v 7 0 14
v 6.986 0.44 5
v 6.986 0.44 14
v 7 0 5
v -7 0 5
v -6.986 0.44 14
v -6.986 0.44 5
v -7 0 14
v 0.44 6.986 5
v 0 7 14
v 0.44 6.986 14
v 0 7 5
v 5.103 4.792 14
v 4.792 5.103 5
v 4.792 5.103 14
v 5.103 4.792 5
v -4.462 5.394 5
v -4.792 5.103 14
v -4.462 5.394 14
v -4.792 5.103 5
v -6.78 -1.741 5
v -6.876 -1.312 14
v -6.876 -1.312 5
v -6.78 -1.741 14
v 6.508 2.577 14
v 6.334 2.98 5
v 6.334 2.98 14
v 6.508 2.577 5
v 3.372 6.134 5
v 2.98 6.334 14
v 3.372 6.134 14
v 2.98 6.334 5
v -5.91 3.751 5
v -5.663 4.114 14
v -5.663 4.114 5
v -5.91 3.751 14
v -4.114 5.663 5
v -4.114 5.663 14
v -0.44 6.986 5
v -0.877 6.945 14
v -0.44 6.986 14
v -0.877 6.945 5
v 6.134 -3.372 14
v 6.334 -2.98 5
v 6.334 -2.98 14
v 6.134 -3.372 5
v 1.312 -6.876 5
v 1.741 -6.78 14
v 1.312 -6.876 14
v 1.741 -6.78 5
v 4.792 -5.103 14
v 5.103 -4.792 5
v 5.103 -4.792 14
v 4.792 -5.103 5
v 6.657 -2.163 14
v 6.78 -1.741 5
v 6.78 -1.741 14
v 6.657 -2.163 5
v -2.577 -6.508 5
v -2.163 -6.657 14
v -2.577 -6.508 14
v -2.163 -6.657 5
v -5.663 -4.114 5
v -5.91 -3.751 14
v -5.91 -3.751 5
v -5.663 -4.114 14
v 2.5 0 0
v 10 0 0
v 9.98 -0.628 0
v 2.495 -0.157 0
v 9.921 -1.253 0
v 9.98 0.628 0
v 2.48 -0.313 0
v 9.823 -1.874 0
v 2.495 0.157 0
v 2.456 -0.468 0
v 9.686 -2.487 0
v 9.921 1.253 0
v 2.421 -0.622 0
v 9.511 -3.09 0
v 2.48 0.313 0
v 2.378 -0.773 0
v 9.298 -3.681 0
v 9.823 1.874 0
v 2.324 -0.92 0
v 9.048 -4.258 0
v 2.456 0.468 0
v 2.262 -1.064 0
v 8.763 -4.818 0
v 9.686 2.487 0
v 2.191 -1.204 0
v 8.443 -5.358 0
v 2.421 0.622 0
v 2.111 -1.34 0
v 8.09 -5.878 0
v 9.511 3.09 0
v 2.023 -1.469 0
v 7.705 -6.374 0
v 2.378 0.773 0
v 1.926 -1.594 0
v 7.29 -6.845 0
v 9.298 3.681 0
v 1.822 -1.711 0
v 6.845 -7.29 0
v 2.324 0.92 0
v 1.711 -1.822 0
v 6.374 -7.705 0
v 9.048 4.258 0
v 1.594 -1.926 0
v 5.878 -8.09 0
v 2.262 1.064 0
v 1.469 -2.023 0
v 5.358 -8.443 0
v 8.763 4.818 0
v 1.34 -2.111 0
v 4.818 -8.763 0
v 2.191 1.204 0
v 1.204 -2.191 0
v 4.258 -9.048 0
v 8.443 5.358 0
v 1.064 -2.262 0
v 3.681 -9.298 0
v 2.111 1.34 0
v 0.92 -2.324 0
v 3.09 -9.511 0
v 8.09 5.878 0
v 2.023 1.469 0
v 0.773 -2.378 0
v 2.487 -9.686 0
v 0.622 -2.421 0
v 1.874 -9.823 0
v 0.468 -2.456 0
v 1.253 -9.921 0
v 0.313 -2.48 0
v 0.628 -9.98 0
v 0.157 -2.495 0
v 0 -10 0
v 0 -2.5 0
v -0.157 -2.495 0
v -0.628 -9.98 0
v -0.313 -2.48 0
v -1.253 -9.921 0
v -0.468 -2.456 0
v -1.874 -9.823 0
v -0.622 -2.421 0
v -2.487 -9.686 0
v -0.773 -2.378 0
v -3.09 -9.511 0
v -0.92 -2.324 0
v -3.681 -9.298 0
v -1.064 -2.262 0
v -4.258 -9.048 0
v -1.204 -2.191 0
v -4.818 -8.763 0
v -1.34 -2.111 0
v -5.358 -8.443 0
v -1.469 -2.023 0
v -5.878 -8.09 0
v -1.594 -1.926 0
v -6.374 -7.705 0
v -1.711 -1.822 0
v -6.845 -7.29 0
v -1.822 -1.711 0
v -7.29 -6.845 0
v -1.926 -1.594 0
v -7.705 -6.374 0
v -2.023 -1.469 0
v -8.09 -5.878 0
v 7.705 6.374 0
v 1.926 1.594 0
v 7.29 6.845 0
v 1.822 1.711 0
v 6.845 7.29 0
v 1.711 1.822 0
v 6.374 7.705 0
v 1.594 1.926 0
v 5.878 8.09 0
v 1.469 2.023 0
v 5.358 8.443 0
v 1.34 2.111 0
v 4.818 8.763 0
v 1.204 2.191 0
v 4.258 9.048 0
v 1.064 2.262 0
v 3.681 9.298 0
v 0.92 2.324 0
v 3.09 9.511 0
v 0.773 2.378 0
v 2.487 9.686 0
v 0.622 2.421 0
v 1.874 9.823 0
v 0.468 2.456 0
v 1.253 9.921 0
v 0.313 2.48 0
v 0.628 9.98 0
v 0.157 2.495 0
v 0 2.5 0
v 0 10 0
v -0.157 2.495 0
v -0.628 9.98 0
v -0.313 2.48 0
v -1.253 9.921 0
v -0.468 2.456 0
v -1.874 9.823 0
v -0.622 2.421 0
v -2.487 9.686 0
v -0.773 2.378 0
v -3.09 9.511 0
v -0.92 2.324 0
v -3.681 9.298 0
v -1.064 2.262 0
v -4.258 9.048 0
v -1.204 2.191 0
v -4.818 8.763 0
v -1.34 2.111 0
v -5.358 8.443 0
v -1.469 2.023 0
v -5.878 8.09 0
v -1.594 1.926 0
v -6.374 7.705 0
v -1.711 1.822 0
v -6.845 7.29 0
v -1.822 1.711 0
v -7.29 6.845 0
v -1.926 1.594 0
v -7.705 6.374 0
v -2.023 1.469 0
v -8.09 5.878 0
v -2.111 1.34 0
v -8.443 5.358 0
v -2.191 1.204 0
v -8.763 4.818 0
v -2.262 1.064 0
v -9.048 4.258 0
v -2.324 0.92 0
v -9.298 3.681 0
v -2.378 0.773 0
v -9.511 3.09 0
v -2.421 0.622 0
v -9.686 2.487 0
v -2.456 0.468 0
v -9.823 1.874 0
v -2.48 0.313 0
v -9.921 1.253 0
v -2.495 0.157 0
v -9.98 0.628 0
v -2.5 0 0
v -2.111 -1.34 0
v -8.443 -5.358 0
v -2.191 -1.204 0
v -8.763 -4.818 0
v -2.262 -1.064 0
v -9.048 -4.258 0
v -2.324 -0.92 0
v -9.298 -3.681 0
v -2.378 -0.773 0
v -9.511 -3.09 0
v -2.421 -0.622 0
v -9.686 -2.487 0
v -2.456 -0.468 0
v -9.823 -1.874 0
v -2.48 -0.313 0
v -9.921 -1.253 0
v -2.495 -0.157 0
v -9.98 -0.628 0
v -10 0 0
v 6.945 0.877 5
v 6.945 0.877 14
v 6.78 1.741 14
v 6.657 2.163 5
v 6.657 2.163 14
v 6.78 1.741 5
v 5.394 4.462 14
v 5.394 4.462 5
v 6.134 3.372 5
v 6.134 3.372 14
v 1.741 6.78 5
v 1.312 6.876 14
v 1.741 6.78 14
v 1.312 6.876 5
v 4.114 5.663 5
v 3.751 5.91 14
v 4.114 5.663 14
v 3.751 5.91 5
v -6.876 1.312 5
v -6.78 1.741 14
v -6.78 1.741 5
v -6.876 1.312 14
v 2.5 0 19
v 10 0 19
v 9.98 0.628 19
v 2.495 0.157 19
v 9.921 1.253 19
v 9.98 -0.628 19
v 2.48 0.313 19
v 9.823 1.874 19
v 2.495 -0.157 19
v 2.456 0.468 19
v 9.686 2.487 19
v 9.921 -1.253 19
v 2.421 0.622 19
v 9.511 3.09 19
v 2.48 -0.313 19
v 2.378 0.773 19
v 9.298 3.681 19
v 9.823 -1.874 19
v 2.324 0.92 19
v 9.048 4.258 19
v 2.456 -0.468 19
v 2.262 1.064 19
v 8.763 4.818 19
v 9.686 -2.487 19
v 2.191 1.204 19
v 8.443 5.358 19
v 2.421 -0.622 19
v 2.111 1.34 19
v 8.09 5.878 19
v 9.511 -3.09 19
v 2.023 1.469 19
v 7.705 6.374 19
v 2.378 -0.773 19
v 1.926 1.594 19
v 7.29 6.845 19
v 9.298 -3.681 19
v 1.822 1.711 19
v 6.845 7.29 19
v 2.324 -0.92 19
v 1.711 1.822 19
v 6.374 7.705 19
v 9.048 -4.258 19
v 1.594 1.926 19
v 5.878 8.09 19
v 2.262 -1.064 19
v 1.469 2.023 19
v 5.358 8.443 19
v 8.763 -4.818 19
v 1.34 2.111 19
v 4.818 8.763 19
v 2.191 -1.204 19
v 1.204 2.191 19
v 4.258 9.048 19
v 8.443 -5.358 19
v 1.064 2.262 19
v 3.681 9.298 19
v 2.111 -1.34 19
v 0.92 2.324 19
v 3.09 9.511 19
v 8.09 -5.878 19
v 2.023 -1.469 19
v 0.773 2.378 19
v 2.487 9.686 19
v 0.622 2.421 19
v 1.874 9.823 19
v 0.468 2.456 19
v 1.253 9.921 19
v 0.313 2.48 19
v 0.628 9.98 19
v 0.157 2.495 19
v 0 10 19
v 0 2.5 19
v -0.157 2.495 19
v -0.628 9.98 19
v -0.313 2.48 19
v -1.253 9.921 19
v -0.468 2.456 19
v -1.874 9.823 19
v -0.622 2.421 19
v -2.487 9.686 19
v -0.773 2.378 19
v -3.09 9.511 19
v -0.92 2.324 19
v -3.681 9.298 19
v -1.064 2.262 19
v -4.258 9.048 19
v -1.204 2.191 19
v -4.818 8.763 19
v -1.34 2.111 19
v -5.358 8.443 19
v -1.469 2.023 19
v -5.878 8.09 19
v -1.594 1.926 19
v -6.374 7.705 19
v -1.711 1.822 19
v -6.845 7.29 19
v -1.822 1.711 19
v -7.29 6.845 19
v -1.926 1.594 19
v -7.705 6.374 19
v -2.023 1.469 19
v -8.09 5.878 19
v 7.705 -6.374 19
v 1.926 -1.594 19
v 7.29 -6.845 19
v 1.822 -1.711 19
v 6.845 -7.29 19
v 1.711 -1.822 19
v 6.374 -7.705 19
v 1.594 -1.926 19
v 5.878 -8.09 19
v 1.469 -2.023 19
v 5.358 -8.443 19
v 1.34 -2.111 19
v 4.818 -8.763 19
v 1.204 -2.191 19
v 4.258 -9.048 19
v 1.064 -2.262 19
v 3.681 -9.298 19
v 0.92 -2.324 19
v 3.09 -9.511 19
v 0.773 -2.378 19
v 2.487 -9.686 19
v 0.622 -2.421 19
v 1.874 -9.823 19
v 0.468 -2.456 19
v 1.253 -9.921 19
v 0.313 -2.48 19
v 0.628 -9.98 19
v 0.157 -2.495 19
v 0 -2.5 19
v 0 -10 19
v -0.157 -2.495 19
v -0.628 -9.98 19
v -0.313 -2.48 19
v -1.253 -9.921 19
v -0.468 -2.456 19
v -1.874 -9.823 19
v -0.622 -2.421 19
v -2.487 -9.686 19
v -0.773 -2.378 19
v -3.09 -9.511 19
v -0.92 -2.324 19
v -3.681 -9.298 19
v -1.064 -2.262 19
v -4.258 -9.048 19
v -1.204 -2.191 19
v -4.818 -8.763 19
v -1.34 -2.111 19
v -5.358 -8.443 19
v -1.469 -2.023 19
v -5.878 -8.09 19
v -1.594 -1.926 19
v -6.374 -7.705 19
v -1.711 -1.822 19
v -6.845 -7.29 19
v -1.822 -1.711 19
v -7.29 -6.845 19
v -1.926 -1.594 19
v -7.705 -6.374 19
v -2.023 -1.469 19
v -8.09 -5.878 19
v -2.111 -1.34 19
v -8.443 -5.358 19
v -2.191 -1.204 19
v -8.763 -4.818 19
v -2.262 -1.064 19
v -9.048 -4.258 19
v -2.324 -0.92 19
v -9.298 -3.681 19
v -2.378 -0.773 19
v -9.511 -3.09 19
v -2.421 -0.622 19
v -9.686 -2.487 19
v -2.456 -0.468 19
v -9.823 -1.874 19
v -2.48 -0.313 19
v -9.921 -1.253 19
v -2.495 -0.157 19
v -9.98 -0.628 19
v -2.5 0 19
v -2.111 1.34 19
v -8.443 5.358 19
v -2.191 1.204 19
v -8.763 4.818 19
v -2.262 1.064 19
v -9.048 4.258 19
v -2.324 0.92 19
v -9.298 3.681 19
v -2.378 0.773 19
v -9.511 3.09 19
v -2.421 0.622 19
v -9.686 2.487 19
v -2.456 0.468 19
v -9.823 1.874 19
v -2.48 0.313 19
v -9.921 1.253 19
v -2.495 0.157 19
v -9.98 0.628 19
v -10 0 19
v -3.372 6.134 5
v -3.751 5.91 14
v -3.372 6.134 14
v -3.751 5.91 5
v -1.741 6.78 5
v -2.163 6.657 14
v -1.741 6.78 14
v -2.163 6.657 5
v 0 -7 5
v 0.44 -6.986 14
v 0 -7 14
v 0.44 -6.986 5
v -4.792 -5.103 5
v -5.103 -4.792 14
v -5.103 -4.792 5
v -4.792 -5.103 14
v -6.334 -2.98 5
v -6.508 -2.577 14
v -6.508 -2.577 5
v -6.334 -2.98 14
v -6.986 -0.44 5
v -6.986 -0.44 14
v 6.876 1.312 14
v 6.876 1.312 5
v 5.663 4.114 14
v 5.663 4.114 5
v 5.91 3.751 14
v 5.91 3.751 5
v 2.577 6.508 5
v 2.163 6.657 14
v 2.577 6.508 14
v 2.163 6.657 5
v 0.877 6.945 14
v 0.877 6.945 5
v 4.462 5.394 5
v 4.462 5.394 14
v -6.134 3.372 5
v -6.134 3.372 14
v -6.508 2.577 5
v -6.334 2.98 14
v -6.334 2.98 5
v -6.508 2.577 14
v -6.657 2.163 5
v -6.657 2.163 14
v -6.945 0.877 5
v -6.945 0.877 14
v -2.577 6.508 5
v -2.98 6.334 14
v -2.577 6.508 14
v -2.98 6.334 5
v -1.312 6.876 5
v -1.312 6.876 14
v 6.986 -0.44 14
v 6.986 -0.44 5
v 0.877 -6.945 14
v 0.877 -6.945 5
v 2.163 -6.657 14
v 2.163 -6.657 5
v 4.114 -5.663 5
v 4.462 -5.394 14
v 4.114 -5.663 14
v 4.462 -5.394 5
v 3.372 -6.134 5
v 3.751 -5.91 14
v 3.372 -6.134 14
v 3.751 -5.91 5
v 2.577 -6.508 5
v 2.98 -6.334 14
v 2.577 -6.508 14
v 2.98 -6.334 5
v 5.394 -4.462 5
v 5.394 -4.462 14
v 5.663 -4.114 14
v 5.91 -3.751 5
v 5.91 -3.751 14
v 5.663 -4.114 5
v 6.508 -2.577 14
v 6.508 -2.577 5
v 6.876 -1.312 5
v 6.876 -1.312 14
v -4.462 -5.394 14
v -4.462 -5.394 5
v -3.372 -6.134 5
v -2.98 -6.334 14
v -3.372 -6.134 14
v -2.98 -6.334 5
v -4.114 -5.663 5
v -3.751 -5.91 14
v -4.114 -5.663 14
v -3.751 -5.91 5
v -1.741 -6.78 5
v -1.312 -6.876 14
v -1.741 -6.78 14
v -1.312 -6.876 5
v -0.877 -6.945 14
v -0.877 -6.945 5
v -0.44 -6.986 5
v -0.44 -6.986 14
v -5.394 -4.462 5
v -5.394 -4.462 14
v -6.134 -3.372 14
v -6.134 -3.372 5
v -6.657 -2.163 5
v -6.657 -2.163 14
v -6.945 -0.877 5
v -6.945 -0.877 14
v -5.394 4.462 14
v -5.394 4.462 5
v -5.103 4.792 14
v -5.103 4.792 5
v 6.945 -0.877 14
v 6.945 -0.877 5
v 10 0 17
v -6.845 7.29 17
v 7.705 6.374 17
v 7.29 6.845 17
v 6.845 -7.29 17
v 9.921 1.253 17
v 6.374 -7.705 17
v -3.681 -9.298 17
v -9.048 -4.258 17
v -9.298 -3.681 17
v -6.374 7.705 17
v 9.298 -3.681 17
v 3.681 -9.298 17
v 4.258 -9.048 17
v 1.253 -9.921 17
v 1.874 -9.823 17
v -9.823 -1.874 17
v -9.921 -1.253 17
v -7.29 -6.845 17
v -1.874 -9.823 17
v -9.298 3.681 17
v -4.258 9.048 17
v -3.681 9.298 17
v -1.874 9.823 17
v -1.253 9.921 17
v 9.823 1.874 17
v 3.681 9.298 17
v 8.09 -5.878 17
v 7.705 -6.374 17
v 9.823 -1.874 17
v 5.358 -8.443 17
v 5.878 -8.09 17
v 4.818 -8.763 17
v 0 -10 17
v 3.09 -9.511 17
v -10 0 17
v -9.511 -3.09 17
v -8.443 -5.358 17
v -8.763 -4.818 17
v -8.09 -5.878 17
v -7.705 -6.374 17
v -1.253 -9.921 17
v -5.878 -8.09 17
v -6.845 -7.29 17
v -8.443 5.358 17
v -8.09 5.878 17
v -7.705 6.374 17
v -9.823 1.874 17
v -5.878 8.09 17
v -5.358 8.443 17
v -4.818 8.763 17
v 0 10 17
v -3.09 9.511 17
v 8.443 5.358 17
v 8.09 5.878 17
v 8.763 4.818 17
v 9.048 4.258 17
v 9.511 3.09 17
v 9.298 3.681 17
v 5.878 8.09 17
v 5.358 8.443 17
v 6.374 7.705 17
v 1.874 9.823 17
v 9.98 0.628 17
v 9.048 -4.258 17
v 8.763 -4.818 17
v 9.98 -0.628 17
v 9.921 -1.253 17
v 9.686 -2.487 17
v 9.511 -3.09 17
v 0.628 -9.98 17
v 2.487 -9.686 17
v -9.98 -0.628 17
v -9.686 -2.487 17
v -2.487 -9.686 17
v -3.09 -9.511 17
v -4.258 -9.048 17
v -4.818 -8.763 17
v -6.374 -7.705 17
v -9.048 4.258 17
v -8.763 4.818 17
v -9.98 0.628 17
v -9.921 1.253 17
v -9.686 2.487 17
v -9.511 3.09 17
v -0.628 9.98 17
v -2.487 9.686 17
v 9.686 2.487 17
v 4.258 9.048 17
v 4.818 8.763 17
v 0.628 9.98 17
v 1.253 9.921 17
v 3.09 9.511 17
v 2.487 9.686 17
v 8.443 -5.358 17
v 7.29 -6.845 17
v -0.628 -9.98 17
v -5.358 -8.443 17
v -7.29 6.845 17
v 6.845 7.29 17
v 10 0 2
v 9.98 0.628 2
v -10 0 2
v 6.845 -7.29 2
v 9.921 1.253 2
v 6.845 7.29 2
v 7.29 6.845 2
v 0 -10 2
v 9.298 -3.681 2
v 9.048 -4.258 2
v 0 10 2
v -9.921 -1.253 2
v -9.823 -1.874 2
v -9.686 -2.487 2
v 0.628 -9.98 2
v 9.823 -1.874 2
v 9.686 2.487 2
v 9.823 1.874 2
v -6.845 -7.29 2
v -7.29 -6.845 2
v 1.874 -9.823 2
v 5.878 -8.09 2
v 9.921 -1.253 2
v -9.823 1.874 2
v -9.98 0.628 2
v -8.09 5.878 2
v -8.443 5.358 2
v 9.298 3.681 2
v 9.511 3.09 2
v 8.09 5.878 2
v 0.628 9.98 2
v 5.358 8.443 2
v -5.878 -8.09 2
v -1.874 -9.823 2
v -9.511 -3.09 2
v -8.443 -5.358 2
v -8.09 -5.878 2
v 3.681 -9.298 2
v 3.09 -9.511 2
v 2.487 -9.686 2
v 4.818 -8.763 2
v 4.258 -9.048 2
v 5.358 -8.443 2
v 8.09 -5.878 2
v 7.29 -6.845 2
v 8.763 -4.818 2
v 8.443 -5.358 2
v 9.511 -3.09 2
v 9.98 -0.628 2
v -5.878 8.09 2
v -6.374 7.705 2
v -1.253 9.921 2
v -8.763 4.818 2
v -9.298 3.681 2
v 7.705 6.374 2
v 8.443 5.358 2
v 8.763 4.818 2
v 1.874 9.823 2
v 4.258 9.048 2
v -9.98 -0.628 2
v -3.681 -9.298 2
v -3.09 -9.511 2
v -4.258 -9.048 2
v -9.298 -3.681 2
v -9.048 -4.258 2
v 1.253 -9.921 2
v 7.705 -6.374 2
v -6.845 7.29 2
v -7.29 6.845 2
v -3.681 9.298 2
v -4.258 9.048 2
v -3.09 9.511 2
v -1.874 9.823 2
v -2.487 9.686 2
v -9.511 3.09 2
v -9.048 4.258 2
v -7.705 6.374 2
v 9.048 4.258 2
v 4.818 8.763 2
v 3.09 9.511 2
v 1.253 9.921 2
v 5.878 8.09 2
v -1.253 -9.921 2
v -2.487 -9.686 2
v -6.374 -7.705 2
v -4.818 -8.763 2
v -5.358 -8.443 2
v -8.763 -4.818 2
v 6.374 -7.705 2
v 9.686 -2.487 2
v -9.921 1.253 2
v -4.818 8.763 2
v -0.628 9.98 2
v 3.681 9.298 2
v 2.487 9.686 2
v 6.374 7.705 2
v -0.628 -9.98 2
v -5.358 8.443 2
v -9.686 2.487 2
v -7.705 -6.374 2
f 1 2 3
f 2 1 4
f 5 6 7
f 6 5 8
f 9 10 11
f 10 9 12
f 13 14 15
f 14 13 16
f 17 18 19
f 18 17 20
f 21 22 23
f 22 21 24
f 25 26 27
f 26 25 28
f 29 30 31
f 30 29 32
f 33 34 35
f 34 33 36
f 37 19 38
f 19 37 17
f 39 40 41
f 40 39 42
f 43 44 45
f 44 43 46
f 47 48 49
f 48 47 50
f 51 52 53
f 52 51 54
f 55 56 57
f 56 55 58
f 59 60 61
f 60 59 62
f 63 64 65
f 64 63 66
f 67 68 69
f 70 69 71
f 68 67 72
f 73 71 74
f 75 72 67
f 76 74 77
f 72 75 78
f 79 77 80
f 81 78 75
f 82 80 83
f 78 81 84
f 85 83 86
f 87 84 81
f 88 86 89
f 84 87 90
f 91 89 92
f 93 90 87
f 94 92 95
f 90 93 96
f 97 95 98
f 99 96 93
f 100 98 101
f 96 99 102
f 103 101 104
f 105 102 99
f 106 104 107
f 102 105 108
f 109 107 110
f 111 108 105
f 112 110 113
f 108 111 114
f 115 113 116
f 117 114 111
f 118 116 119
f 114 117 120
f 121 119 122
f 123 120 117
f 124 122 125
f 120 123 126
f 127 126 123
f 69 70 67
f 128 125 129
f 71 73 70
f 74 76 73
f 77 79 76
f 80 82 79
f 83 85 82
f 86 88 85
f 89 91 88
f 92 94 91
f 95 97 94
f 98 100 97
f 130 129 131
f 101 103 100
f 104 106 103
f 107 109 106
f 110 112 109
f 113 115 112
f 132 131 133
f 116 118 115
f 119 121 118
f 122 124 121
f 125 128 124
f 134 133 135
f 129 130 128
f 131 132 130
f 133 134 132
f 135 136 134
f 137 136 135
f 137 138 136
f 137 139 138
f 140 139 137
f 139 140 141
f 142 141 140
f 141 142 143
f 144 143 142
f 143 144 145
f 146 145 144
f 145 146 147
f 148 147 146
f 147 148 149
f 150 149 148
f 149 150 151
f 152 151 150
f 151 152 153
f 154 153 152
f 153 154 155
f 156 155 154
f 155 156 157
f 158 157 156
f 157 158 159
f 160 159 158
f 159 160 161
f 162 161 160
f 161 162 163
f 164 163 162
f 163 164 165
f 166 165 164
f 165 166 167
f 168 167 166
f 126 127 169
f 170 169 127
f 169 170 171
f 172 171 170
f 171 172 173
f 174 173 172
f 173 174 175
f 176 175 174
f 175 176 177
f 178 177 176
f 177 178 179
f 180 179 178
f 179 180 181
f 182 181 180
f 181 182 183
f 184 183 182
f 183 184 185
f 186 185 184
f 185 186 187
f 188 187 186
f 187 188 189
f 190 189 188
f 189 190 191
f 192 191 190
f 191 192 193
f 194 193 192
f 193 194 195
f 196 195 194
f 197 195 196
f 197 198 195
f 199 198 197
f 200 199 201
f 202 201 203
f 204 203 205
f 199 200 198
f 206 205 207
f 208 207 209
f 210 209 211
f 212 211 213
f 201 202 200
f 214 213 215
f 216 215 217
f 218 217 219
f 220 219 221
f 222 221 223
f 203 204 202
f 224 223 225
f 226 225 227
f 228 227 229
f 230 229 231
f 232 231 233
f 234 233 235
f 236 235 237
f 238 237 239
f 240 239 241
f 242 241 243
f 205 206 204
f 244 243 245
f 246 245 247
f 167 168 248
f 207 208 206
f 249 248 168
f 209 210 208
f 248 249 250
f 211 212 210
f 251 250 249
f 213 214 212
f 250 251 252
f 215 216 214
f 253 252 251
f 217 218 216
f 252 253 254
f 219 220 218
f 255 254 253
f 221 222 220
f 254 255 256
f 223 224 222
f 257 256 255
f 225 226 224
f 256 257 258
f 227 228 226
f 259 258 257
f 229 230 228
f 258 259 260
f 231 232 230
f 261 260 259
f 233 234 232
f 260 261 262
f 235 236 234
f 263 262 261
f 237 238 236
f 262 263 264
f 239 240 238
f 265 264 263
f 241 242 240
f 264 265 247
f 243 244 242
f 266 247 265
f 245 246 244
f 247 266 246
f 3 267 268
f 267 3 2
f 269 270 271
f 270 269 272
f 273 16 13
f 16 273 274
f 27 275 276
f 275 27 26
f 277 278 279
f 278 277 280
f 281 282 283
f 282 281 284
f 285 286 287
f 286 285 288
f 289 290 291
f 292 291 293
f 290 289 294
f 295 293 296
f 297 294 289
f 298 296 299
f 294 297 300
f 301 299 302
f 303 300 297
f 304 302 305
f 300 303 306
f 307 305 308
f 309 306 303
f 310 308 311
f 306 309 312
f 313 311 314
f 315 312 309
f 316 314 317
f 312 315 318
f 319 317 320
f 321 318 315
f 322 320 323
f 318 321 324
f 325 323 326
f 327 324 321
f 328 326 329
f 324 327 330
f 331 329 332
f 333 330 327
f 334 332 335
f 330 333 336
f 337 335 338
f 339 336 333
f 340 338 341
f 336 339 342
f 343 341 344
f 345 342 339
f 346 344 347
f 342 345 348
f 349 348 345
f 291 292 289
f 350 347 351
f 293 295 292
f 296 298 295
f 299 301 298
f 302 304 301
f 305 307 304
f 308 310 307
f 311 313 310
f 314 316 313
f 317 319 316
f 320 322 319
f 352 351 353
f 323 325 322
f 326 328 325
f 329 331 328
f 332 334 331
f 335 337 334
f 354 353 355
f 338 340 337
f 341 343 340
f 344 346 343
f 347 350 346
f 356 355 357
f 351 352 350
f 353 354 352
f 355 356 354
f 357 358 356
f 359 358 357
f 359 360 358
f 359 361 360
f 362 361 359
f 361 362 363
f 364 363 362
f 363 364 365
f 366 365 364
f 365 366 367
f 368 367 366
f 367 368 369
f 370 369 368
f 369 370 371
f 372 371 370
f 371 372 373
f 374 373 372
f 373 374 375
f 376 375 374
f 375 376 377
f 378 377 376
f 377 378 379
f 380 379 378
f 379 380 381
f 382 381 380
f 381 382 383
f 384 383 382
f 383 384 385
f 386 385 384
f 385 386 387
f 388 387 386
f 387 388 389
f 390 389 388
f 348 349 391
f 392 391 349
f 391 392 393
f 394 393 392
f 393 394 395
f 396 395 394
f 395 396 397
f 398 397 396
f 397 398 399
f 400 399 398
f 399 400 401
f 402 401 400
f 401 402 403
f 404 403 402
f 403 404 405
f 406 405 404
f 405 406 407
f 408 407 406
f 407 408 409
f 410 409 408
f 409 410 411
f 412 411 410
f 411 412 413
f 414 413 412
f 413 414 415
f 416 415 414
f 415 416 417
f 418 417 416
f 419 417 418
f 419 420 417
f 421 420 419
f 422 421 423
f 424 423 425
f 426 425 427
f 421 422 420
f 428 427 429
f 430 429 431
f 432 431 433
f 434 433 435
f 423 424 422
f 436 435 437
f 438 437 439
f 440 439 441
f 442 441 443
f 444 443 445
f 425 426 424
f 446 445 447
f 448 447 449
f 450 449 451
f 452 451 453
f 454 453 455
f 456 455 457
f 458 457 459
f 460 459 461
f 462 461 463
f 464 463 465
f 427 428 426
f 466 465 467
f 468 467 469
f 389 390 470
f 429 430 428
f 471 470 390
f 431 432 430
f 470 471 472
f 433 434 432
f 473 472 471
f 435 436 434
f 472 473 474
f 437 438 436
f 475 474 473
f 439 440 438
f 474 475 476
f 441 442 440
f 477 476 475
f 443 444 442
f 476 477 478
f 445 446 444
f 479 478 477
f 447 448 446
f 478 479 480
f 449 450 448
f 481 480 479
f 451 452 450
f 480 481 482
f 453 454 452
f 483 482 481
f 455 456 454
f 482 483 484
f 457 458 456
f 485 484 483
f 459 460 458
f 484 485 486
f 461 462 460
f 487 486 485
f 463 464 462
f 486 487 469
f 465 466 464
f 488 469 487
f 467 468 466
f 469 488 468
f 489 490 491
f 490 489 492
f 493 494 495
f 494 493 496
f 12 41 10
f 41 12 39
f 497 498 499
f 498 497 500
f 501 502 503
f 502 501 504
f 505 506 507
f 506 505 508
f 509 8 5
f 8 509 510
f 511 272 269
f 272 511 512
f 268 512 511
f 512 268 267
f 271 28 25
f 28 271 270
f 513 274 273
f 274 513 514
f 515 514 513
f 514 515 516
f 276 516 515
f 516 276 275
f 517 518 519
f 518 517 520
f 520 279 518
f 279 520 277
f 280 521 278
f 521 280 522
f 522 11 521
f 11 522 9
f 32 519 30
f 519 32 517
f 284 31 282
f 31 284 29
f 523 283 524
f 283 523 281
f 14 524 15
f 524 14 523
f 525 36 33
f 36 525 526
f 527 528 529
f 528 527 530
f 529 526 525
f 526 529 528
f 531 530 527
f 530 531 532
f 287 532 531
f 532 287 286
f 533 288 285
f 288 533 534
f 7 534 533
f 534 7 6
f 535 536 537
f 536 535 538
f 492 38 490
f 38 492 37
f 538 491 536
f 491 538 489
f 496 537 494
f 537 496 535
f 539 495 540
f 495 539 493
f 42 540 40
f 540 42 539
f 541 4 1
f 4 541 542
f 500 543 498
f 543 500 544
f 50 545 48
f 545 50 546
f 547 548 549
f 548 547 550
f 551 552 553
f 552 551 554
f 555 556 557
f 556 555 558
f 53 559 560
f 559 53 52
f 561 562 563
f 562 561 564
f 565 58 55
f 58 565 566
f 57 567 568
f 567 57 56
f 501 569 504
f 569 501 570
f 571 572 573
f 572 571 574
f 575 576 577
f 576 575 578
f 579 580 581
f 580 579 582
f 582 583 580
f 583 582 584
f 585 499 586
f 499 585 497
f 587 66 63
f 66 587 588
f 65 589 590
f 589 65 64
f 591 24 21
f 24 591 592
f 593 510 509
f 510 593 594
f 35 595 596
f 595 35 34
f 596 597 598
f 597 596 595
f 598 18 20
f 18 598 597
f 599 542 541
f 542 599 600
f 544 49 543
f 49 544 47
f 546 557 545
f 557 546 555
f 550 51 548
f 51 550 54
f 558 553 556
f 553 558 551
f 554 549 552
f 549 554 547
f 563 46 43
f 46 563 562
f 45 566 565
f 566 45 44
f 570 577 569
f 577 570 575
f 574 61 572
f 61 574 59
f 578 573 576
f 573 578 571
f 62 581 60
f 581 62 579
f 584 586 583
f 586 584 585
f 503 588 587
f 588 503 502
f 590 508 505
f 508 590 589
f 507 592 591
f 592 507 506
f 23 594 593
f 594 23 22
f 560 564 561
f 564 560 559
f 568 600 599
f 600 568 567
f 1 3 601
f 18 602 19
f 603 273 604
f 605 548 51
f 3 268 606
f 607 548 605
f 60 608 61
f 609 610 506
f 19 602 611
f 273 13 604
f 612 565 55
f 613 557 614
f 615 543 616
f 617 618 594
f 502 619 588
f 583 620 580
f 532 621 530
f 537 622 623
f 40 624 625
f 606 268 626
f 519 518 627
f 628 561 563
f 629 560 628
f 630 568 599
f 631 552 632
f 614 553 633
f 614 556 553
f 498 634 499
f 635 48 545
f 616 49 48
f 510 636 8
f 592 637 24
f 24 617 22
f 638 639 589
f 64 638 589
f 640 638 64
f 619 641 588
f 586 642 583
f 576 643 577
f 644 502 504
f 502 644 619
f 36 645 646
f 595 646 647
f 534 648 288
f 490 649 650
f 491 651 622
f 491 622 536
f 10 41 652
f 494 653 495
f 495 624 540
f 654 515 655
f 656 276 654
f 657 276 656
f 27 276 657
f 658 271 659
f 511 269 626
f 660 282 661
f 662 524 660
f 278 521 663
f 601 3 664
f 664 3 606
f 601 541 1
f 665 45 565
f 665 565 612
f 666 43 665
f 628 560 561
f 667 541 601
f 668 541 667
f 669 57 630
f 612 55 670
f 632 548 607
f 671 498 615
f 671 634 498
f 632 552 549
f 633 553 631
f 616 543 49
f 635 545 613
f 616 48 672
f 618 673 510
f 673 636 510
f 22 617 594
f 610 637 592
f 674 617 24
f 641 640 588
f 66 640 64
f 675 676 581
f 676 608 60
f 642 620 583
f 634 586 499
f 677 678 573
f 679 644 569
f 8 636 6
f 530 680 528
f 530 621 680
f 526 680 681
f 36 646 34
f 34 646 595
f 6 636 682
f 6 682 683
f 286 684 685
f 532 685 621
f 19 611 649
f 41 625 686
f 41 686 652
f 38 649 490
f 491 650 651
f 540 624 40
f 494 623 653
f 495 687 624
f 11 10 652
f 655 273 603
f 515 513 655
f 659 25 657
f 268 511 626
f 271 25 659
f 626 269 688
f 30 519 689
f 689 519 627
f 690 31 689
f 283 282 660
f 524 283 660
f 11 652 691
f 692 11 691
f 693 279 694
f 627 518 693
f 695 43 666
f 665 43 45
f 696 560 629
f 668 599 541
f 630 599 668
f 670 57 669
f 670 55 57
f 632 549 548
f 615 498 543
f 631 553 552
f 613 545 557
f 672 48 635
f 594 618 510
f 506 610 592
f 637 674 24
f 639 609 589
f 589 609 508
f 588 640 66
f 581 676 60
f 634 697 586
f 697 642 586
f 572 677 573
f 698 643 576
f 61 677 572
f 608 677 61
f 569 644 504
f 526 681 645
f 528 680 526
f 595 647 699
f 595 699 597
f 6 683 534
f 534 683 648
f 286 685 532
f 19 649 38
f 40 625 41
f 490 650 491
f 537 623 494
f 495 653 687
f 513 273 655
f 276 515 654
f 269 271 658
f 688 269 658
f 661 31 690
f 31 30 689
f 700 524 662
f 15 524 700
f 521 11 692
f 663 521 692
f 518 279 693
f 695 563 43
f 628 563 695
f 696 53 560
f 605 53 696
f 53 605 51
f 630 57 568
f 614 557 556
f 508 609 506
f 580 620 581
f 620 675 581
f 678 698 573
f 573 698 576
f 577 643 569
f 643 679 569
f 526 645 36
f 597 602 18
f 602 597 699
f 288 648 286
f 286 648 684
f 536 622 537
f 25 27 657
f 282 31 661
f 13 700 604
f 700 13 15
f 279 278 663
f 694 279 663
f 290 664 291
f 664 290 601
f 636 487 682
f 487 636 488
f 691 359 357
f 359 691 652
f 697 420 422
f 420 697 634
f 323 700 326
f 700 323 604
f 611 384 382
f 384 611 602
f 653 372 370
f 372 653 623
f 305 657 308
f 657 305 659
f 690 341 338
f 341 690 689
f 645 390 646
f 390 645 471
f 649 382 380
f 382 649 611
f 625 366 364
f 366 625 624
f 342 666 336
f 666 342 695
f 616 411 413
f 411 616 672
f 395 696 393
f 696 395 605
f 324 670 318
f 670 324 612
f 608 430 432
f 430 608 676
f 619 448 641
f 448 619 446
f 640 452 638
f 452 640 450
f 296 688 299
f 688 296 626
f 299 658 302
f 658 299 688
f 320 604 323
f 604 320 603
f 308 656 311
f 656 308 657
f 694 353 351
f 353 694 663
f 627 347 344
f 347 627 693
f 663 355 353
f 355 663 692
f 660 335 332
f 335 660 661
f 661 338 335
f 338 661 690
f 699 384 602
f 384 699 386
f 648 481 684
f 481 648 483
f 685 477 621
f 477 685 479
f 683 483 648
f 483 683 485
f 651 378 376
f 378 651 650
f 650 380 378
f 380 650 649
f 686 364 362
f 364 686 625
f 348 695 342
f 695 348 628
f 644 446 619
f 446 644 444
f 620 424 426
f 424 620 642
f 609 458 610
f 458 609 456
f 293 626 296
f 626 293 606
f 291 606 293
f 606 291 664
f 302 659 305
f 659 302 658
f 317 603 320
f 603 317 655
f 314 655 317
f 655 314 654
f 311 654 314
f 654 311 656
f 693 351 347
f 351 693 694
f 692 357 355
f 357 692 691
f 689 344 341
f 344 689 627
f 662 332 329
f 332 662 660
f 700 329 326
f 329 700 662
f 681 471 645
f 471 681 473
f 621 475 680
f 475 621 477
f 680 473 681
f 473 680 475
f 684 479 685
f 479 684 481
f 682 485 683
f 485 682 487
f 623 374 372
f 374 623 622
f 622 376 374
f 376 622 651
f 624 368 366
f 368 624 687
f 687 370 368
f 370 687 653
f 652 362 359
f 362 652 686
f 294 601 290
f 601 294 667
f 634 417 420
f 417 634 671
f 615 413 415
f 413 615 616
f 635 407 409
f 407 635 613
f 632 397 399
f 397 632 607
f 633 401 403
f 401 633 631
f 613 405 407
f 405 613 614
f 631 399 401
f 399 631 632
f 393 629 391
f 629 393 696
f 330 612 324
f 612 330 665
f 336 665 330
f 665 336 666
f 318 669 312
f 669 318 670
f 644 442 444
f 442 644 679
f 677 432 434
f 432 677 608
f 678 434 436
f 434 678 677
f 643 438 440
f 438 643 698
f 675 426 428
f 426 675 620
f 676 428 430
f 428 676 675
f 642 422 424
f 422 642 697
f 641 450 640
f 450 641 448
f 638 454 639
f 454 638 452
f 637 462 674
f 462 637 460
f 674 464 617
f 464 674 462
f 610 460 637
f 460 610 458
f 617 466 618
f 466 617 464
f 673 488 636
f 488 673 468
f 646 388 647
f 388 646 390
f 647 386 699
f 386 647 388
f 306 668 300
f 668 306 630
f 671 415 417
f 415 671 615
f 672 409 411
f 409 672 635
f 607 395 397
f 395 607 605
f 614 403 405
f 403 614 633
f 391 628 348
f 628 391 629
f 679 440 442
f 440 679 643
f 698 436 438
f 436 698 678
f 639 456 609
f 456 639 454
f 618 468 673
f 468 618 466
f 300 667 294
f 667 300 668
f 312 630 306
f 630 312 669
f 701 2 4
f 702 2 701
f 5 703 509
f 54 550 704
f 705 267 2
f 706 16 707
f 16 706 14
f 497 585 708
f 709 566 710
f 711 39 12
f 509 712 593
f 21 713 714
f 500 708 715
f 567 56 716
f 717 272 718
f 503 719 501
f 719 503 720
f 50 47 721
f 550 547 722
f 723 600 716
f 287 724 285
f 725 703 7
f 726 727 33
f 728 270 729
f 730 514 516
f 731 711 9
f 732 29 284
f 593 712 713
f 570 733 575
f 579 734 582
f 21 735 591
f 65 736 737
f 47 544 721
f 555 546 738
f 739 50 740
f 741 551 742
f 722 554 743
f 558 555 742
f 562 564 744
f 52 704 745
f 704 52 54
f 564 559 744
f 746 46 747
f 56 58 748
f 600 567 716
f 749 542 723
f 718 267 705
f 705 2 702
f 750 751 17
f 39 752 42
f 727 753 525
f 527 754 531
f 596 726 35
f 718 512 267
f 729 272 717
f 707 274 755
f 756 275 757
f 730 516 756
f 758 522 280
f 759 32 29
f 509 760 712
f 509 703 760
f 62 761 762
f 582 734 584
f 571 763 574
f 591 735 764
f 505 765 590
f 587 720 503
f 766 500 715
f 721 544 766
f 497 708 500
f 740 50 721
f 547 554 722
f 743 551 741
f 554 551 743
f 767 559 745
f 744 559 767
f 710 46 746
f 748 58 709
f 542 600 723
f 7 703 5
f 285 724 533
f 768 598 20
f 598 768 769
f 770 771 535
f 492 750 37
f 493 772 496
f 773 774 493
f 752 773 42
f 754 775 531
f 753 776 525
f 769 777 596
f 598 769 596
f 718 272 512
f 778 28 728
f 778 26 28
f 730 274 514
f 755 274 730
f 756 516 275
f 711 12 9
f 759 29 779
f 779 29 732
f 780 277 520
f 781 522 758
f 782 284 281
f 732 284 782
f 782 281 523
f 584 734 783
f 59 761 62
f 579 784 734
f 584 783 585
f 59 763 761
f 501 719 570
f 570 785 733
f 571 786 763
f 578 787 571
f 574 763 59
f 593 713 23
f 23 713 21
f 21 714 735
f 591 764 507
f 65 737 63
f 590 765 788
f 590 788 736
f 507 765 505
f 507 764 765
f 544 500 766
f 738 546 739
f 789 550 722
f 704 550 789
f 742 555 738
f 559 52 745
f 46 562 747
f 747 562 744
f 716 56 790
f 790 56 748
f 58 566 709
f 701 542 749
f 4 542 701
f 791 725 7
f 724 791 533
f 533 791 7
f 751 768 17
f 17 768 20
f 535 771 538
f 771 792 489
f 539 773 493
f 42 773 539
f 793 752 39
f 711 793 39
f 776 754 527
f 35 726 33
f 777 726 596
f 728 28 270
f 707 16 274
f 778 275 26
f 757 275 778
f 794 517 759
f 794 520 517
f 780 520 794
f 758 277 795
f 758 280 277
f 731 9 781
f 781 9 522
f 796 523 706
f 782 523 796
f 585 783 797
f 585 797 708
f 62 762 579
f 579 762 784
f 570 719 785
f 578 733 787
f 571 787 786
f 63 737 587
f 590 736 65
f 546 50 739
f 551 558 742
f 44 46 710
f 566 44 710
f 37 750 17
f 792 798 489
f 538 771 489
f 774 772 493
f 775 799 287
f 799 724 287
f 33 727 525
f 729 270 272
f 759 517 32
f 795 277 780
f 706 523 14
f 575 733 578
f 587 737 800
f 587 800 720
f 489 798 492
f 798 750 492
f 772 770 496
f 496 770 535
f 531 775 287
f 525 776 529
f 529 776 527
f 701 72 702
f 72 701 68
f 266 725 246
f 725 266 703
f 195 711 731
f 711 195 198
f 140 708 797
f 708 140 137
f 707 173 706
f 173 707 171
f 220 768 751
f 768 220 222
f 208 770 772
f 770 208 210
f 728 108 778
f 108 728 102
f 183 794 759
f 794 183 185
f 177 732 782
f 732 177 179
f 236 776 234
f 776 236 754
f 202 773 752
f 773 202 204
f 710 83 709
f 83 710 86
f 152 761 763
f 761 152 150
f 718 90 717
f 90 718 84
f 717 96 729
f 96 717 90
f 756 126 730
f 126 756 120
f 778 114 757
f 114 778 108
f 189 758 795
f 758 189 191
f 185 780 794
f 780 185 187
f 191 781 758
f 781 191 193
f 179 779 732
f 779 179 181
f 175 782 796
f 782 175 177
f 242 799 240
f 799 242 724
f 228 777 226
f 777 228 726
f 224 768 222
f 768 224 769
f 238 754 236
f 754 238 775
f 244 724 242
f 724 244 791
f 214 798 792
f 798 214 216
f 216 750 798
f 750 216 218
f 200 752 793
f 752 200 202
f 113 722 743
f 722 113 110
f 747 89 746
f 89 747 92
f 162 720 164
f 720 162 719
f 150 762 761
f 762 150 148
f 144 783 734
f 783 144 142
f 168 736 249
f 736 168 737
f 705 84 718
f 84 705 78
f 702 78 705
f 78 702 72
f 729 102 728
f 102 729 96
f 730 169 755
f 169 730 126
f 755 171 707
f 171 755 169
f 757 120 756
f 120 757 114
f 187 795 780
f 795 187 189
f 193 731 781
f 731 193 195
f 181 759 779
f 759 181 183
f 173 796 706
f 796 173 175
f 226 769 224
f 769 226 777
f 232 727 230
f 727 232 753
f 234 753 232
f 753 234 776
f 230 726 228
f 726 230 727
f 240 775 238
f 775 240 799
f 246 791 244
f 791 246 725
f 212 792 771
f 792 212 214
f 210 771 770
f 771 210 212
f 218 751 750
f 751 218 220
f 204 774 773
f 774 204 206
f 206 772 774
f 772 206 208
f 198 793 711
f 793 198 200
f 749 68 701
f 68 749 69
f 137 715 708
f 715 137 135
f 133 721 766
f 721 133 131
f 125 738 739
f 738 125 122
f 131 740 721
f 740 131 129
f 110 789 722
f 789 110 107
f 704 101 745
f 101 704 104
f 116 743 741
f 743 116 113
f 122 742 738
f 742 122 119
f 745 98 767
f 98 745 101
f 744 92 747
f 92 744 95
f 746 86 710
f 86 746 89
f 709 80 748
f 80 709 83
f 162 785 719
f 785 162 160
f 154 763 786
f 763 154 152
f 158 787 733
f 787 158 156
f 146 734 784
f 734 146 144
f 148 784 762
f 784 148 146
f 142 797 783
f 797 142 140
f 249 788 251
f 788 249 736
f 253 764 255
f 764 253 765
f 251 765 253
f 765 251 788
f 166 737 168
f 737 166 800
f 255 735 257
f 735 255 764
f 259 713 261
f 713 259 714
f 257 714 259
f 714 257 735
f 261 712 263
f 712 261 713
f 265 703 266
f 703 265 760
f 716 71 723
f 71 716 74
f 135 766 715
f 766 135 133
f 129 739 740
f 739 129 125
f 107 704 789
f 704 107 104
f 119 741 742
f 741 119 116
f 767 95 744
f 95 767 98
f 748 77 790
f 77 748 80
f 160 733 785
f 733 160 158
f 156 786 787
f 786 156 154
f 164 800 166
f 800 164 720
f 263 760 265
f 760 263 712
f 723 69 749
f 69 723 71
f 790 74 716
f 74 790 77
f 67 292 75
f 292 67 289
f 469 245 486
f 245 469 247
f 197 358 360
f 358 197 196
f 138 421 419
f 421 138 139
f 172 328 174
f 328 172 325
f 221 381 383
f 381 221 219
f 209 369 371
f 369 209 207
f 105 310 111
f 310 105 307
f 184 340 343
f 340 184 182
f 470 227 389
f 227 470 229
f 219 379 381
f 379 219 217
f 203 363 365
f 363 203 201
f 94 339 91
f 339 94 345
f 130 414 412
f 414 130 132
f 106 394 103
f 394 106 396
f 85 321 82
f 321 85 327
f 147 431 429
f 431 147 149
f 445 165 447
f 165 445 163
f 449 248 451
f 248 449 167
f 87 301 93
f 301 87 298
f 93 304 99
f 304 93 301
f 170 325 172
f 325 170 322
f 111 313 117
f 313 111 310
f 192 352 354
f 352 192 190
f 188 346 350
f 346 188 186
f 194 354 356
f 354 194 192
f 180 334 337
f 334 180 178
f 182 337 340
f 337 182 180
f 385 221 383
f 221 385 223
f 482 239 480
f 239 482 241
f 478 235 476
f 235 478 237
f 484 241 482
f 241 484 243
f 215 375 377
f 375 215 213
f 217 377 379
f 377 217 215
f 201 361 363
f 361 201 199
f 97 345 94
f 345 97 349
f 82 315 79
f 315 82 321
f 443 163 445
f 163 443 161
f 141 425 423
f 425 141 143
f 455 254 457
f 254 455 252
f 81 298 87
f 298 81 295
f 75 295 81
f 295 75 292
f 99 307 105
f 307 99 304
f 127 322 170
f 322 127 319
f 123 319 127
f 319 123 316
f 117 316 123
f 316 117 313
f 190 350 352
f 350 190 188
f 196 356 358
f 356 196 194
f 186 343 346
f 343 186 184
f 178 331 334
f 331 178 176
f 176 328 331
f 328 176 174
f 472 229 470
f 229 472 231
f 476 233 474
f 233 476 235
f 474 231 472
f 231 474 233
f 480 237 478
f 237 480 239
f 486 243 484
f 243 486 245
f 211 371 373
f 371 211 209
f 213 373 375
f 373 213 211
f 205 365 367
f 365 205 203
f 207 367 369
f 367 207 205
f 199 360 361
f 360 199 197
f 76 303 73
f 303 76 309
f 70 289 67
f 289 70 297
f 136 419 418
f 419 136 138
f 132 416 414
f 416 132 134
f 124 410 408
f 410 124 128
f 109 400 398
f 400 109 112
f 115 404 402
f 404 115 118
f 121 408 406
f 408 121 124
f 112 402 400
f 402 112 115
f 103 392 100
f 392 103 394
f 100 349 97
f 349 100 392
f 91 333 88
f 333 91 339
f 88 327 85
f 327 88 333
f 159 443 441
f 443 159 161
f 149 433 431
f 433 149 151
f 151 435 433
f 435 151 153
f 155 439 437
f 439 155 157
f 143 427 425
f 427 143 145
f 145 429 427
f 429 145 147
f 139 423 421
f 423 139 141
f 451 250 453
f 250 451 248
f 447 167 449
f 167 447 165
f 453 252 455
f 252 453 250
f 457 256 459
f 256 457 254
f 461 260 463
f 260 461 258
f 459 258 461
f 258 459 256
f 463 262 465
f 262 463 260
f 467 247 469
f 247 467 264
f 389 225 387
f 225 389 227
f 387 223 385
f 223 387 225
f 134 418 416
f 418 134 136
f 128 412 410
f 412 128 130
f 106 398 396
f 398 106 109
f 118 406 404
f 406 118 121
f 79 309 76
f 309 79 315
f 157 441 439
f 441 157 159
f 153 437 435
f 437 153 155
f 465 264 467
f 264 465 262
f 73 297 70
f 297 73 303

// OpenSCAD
$fn = 100;

difference() {

    union() {
        cylinder(h = 19, r = 7);
        
        color("green")
        translate([0, 0, 14])
        cylinder(h=3, r1 = 7, r2 = 10);
        color("green")
        translate([0, 0, 17])
        rotate([0, 0, 0])
        cylinder(h=2, r = 10);

        color("blue")
        translate([0, 0, 2])
        cylinder(h=3, r1 = 10, r2 = 7);
        color("blue")
        translate([0, 0, 0])
        rotate([0, 0, 0])
        cylinder(h=2, r = 10); 
    }
    translate([0, 0, -1])
    cylinder(h = 21, r = 2.5);
}
